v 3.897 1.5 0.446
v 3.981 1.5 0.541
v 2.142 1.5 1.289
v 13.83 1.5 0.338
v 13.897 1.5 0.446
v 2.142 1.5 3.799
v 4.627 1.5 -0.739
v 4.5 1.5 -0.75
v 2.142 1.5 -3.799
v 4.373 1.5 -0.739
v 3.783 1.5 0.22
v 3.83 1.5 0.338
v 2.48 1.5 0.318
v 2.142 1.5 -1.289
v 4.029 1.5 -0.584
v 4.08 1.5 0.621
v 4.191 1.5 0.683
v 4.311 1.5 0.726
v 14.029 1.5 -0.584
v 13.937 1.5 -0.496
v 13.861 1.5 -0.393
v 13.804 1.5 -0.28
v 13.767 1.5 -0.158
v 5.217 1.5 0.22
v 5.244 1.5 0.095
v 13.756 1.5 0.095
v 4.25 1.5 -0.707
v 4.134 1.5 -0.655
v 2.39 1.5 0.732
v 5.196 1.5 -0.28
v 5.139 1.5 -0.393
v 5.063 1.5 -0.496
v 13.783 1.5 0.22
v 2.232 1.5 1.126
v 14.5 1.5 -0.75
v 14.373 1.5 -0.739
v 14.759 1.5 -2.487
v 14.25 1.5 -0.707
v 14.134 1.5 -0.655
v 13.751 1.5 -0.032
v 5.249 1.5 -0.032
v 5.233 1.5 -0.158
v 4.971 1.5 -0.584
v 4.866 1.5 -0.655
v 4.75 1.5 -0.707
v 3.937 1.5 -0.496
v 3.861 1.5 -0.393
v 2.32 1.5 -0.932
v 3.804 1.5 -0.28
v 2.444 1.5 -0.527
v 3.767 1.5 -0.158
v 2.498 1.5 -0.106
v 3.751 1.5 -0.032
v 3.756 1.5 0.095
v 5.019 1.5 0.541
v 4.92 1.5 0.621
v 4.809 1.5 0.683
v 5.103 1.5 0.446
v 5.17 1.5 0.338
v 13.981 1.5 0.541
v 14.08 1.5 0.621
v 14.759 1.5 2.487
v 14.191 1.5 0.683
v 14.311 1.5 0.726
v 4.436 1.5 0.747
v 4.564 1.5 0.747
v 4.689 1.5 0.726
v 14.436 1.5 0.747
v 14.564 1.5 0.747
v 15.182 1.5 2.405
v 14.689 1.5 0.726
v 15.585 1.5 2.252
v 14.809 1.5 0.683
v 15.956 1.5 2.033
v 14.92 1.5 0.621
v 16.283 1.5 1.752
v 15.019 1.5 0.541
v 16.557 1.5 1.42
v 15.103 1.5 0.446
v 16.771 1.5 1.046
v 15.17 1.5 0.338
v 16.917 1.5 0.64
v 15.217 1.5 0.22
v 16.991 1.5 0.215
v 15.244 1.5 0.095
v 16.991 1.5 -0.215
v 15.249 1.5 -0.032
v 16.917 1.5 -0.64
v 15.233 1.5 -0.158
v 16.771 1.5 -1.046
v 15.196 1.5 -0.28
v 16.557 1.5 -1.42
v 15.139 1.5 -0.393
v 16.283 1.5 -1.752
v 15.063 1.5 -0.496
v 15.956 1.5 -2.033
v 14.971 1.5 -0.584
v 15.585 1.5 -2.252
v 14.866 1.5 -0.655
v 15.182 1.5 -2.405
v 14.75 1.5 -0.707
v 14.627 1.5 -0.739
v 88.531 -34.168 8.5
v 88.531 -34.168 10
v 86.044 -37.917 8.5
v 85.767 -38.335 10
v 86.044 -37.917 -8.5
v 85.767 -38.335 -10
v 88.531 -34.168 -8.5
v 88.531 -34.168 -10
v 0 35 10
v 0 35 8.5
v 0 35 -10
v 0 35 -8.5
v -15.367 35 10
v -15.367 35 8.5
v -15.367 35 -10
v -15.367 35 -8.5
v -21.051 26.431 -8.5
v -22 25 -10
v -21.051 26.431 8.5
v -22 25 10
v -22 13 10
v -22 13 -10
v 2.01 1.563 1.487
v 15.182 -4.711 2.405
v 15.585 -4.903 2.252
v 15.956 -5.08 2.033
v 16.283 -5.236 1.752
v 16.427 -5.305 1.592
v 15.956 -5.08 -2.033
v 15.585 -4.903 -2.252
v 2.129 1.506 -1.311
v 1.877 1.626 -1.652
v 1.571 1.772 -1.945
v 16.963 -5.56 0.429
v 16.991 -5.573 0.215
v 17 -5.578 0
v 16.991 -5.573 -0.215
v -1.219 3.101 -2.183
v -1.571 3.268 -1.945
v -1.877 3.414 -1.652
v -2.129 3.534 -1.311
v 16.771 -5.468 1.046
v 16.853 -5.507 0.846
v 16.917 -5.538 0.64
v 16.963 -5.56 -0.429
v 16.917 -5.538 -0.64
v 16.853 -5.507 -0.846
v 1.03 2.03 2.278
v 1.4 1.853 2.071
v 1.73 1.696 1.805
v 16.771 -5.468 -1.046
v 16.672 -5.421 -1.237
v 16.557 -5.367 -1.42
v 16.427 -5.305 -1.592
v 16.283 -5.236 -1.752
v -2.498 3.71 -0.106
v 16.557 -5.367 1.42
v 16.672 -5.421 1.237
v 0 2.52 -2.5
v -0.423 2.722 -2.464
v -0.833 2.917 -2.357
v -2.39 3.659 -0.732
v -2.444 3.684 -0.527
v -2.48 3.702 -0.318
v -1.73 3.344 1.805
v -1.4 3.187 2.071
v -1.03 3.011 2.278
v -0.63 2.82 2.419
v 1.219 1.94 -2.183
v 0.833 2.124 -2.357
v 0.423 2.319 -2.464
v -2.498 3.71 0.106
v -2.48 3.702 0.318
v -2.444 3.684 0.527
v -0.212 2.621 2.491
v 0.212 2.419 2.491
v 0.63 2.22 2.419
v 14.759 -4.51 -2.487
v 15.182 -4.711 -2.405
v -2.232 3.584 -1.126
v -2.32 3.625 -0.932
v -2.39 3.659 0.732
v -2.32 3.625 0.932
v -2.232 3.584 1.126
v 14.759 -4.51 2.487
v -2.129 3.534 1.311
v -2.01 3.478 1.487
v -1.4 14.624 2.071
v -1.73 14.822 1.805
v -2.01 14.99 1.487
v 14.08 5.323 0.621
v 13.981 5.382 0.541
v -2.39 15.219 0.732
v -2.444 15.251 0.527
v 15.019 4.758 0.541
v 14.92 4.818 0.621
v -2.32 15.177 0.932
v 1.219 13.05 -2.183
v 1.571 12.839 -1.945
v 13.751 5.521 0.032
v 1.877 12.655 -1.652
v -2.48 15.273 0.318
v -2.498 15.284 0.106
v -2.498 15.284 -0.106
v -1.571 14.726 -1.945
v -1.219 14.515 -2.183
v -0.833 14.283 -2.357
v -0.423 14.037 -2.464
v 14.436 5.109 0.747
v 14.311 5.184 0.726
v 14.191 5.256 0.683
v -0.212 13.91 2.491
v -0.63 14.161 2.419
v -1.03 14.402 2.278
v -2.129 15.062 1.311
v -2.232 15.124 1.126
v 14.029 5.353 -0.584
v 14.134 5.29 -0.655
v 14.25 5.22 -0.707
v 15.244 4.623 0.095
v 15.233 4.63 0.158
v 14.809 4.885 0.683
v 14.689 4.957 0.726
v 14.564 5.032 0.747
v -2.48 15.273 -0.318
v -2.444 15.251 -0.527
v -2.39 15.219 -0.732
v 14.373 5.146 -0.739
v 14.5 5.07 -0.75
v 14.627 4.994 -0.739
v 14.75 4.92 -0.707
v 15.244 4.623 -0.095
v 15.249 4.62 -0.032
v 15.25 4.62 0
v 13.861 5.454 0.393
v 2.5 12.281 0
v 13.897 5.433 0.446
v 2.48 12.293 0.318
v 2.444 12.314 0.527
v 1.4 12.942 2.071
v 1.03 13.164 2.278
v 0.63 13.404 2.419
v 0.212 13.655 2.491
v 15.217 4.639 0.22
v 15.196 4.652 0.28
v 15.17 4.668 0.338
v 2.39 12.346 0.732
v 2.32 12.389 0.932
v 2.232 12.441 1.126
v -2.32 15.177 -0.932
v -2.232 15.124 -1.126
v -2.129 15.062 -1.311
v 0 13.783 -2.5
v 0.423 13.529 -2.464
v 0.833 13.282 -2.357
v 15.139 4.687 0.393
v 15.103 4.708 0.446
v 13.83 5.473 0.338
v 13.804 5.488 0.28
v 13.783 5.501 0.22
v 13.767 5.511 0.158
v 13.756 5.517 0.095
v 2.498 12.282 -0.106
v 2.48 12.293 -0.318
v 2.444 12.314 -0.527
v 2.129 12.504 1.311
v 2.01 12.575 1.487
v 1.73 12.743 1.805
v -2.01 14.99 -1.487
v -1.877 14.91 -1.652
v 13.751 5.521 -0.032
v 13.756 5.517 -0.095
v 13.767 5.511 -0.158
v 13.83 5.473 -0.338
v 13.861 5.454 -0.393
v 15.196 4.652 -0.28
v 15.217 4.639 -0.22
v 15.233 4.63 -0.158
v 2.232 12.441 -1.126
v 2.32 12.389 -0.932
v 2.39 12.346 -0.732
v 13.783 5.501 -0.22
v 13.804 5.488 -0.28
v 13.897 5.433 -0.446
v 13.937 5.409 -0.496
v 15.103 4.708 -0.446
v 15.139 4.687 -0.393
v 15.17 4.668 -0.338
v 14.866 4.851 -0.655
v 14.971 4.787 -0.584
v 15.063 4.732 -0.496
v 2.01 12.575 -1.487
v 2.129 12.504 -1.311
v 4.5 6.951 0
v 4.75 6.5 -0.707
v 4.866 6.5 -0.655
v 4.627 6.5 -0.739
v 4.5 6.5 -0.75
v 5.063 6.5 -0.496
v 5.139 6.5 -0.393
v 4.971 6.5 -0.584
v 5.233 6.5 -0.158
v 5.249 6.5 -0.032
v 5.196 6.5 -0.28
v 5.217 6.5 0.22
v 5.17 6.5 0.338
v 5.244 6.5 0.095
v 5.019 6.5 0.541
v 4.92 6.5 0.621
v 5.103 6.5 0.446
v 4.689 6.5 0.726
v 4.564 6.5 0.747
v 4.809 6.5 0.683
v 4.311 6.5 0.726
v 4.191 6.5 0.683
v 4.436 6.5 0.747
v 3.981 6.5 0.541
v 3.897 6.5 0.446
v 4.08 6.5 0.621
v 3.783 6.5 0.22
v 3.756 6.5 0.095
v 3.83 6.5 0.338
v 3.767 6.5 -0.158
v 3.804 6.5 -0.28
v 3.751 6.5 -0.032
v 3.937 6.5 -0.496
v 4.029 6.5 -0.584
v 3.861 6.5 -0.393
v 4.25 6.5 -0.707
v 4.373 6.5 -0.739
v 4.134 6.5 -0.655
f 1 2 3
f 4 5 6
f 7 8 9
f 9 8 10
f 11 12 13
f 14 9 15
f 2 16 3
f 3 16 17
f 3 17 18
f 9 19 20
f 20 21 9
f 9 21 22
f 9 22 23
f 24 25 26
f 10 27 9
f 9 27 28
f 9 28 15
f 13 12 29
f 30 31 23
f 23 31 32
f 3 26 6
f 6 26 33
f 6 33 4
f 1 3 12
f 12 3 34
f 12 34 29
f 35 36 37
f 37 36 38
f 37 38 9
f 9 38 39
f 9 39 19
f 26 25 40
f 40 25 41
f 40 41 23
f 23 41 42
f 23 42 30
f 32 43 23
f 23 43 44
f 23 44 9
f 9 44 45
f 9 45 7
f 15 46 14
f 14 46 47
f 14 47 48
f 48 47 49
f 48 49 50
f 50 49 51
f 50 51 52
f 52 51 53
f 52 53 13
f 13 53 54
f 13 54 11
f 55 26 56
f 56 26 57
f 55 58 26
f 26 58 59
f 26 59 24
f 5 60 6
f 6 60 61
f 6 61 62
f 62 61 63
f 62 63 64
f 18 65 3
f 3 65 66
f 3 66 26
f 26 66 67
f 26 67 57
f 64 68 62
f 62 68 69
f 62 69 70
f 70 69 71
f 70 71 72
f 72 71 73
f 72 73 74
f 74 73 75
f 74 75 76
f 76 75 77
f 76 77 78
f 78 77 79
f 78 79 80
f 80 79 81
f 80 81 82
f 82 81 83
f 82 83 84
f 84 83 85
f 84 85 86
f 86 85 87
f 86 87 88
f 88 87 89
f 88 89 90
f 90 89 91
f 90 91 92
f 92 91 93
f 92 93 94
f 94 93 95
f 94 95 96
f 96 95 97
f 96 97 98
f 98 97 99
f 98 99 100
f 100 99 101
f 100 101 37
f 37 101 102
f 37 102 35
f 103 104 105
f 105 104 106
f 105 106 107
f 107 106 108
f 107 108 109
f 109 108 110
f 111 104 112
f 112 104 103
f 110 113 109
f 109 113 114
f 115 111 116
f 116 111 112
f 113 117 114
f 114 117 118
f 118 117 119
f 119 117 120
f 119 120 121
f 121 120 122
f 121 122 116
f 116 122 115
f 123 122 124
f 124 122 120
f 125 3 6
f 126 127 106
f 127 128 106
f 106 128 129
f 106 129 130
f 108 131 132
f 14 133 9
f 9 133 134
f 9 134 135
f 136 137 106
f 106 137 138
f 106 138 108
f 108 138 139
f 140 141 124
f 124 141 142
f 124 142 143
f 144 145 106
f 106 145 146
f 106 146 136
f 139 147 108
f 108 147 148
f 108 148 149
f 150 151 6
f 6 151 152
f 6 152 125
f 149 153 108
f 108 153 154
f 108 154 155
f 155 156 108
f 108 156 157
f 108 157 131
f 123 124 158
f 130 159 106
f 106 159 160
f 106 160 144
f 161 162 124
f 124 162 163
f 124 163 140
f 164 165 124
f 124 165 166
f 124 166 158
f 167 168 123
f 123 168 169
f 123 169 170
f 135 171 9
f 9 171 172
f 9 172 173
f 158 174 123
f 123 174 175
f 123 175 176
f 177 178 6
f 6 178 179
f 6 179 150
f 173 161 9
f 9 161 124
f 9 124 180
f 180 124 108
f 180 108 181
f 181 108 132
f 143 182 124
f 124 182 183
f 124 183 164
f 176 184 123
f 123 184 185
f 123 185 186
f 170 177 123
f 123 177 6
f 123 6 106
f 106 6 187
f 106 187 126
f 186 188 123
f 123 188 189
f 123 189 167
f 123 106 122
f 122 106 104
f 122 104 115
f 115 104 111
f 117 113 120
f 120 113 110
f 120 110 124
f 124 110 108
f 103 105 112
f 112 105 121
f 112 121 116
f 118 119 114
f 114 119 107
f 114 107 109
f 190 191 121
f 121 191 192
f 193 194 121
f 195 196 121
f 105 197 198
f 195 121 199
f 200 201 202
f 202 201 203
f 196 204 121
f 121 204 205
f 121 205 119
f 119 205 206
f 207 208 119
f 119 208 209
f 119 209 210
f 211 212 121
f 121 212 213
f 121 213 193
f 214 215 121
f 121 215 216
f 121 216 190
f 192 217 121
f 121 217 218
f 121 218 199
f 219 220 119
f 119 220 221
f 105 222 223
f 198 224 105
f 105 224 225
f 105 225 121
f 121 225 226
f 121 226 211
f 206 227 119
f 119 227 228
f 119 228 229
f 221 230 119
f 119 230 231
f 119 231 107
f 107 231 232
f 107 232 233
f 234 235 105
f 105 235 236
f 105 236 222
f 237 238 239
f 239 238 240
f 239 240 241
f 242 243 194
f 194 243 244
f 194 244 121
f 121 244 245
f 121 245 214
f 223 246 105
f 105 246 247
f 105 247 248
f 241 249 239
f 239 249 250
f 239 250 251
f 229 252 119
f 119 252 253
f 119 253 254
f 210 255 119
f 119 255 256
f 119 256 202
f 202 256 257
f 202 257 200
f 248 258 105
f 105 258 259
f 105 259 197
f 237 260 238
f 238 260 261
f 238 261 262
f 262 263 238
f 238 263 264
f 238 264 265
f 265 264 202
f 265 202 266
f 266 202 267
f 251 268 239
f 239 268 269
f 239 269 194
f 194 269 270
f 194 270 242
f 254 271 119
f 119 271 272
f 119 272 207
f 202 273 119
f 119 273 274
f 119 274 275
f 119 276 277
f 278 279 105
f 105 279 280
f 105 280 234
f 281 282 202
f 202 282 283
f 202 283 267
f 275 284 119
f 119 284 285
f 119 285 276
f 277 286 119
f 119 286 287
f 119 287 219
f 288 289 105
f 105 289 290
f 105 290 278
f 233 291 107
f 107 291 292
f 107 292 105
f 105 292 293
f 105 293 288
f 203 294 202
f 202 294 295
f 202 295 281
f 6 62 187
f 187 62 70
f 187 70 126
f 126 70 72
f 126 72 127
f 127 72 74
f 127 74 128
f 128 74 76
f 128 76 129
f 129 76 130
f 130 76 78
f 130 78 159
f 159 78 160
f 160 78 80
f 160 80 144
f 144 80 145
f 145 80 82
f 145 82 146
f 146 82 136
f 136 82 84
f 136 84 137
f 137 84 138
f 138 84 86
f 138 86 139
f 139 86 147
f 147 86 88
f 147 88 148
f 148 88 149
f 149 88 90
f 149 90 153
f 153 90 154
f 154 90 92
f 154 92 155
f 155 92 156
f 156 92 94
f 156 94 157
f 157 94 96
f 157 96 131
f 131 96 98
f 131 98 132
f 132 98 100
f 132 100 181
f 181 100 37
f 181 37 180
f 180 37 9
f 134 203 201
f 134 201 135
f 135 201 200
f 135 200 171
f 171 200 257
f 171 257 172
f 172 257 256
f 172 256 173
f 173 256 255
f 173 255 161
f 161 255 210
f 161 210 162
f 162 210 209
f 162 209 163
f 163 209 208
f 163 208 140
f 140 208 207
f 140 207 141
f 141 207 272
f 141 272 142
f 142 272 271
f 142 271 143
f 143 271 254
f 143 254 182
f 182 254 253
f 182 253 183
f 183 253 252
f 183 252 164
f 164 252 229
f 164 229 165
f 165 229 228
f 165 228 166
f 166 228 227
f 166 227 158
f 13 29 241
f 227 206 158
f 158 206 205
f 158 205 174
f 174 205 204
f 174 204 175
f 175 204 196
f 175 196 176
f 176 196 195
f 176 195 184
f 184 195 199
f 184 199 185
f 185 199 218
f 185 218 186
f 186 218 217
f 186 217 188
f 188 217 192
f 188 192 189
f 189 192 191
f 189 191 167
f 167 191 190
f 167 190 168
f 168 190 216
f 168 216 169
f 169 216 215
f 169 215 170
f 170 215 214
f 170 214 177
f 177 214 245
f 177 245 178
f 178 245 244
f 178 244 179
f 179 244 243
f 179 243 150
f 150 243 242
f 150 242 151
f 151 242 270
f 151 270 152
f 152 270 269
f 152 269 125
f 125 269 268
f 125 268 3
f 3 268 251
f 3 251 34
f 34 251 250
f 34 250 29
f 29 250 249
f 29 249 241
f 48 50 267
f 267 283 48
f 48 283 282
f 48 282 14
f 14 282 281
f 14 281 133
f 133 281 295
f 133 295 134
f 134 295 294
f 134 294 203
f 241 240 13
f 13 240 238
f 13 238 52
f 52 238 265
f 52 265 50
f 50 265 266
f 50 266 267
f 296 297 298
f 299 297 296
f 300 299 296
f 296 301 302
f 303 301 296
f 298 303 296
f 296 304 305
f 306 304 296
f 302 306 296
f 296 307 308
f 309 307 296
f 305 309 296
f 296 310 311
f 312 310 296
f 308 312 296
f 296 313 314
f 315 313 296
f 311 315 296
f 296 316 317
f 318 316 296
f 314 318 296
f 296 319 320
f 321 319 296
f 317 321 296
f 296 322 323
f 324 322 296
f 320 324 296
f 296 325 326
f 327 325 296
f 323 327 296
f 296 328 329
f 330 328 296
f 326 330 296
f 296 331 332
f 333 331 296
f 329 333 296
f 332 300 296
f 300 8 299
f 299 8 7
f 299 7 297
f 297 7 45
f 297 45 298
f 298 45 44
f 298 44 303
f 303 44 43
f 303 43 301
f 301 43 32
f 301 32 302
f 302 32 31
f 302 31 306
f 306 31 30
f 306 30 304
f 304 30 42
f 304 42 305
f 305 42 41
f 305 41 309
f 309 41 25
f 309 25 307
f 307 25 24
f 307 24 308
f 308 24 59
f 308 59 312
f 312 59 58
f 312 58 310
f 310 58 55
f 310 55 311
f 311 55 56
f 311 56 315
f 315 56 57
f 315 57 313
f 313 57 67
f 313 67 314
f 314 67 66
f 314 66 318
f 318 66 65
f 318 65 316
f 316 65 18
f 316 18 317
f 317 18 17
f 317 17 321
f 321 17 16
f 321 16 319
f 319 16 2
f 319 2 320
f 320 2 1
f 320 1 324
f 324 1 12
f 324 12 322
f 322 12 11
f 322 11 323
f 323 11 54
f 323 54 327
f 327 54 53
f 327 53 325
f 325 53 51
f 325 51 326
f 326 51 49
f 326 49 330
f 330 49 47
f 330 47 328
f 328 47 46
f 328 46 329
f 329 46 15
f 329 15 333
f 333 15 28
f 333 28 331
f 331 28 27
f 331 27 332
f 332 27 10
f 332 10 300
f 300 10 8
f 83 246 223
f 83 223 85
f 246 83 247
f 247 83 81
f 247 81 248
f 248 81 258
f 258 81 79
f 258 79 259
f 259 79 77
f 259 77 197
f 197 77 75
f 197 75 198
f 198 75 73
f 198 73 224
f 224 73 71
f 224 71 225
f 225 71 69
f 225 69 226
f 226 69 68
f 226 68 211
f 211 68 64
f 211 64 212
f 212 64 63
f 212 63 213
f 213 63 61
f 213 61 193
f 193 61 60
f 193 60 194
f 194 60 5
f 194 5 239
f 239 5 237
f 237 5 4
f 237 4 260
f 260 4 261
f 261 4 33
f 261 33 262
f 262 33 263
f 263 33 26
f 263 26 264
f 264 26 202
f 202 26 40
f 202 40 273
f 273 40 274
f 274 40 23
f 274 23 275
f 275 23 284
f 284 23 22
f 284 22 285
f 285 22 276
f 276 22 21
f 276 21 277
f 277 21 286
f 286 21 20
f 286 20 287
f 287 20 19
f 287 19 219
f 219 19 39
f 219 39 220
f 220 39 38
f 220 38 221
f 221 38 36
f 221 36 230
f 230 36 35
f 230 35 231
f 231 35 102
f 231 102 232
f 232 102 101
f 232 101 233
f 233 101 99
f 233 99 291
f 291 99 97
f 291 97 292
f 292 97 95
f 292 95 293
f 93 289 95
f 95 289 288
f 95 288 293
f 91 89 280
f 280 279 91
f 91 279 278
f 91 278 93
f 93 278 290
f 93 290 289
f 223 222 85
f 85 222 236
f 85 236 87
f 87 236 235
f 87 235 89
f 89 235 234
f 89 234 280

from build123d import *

# Parameters (mm, degrees)
BOSS_EXTRU_1_DEPTH                  = 10
ENL_V_START                         = 0.5
ESQUISSE3_W                         = 17
ESQUISSE3_H                         = 125.217180483
ENL_V_MAT_EXTRU_2_DEPTH             = 20
ENL_V_MAT_EXTRU_3_REACH             = 41.835
DIAM_TRE_DU_PER_AGE_5_0_5_2_D       = 5
DIAM_TRE_DU_PER_AGE_1_5_1_5_1_D     = 1.5
DIAM_TRE_DU_PER_AGE_1_5_1_5_1_DEPTH = 5
DIAM_TRE_DU_PER_AGE_1_5_1_5_1_TIP   = 0.450645464


with BuildPart() as part:
    # Esquisse1 → Boss.-Extru.1 (new body, symmetric)
    with BuildSketch(Plane.XY):
        Polygon((85.767026828, -38.334571354), (88.53088082, -34.167904687), (0, 35), (-15.366750419, 35), (-22, 25), (-22, 13), align=None)
    extrude(amount=BOSS_EXTRU_1_DEPTH, both=True)

    # Esquisse3 → Enlèv. mat.-Extru.2 (cut)
    with BuildSketch(Plane(origin=(5.827214604, 9.698113705, 0), x_dir=(0, 0, -1), z_dir=(0.515038075, 0.857167301, 0)).offset(ENL_V_START)):
        with Locations((0, -30.874957754)):
            Rectangle(ESQUISSE3_W, ESQUISSE3_H)
    extrude(amount=ENL_V_MAT_EXTRU_2_DEPTH, mode=Mode.SUBTRACT)

    # Esquisse4 → Enlèv. mat.-Extru.3 (cut, up to next)
    with BuildSketch(Plane(origin=(0, 1.5, 0), x_dir=(1, 0, 0), z_dir=(0, 1, 0)), mode=Mode.PRIVATE) as enl_v_mat_extru_3_sk1:
        with BuildLine():
            Line((0.413793103, 3.978539338), (14.75862069, 2.486587087))
            ThreePointArc((14.75862069, 2.486587087), (17, 0), (14.75862069, -2.486587087))
            Line((14.75862069, -2.486587087), (0.413793103, -3.978539338))
            ThreePointArc((0.413793103, -3.978539338), (-4, 0), (0.413793103, 3.978539338))
        make_face()
    enl_v_mat_extru_3_tool1 = extrude(enl_v_mat_extru_3_sk1.sketch, amount=-ENL_V_MAT_EXTRU_3_REACH, mode=Mode.PRIVATE) & part.part
    add(enl_v_mat_extru_3_tool1.solids().sort_by_distance((5.738323, 1.5, 0))[0], mode=Mode.SUBTRACT)

    # Diamètre du perçage Ø5.0 (5)2 (through all)
    with Locations(Plane(origin=(0, 1.5, 0), x_dir=(-1, 0, 0), z_dir=(0, -1, 0))):
        with Locations((0, 0)):
            Hole(DIAM_TRE_DU_PER_AGE_5_0_5_2_D / 2)

    # Diamètre du perçage Ø1.5 (1.5)1
    with Locations(Plane(origin=(0, 1.5, 0), x_dir=(-1, 0, 0), z_dir=(0, -1, 0))):
        with Locations((-14.5, 0), (-4.5, 0)):
            Hole(DIAM_TRE_DU_PER_AGE_1_5_1_5_1_D / 2, depth=DIAM_TRE_DU_PER_AGE_1_5_1_5_1_DEPTH)
            with Locations((0, 0, -(DIAM_TRE_DU_PER_AGE_1_5_1_5_1_DEPTH + DIAM_TRE_DU_PER_AGE_1_5_1_5_1_TIP / 2))):  # 118° drill point
                Cone(0, DIAM_TRE_DU_PER_AGE_1_5_1_5_1_D / 2, DIAM_TRE_DU_PER_AGE_1_5_1_5_1_TIP, mode=Mode.SUBTRACT)


solid = part.part
